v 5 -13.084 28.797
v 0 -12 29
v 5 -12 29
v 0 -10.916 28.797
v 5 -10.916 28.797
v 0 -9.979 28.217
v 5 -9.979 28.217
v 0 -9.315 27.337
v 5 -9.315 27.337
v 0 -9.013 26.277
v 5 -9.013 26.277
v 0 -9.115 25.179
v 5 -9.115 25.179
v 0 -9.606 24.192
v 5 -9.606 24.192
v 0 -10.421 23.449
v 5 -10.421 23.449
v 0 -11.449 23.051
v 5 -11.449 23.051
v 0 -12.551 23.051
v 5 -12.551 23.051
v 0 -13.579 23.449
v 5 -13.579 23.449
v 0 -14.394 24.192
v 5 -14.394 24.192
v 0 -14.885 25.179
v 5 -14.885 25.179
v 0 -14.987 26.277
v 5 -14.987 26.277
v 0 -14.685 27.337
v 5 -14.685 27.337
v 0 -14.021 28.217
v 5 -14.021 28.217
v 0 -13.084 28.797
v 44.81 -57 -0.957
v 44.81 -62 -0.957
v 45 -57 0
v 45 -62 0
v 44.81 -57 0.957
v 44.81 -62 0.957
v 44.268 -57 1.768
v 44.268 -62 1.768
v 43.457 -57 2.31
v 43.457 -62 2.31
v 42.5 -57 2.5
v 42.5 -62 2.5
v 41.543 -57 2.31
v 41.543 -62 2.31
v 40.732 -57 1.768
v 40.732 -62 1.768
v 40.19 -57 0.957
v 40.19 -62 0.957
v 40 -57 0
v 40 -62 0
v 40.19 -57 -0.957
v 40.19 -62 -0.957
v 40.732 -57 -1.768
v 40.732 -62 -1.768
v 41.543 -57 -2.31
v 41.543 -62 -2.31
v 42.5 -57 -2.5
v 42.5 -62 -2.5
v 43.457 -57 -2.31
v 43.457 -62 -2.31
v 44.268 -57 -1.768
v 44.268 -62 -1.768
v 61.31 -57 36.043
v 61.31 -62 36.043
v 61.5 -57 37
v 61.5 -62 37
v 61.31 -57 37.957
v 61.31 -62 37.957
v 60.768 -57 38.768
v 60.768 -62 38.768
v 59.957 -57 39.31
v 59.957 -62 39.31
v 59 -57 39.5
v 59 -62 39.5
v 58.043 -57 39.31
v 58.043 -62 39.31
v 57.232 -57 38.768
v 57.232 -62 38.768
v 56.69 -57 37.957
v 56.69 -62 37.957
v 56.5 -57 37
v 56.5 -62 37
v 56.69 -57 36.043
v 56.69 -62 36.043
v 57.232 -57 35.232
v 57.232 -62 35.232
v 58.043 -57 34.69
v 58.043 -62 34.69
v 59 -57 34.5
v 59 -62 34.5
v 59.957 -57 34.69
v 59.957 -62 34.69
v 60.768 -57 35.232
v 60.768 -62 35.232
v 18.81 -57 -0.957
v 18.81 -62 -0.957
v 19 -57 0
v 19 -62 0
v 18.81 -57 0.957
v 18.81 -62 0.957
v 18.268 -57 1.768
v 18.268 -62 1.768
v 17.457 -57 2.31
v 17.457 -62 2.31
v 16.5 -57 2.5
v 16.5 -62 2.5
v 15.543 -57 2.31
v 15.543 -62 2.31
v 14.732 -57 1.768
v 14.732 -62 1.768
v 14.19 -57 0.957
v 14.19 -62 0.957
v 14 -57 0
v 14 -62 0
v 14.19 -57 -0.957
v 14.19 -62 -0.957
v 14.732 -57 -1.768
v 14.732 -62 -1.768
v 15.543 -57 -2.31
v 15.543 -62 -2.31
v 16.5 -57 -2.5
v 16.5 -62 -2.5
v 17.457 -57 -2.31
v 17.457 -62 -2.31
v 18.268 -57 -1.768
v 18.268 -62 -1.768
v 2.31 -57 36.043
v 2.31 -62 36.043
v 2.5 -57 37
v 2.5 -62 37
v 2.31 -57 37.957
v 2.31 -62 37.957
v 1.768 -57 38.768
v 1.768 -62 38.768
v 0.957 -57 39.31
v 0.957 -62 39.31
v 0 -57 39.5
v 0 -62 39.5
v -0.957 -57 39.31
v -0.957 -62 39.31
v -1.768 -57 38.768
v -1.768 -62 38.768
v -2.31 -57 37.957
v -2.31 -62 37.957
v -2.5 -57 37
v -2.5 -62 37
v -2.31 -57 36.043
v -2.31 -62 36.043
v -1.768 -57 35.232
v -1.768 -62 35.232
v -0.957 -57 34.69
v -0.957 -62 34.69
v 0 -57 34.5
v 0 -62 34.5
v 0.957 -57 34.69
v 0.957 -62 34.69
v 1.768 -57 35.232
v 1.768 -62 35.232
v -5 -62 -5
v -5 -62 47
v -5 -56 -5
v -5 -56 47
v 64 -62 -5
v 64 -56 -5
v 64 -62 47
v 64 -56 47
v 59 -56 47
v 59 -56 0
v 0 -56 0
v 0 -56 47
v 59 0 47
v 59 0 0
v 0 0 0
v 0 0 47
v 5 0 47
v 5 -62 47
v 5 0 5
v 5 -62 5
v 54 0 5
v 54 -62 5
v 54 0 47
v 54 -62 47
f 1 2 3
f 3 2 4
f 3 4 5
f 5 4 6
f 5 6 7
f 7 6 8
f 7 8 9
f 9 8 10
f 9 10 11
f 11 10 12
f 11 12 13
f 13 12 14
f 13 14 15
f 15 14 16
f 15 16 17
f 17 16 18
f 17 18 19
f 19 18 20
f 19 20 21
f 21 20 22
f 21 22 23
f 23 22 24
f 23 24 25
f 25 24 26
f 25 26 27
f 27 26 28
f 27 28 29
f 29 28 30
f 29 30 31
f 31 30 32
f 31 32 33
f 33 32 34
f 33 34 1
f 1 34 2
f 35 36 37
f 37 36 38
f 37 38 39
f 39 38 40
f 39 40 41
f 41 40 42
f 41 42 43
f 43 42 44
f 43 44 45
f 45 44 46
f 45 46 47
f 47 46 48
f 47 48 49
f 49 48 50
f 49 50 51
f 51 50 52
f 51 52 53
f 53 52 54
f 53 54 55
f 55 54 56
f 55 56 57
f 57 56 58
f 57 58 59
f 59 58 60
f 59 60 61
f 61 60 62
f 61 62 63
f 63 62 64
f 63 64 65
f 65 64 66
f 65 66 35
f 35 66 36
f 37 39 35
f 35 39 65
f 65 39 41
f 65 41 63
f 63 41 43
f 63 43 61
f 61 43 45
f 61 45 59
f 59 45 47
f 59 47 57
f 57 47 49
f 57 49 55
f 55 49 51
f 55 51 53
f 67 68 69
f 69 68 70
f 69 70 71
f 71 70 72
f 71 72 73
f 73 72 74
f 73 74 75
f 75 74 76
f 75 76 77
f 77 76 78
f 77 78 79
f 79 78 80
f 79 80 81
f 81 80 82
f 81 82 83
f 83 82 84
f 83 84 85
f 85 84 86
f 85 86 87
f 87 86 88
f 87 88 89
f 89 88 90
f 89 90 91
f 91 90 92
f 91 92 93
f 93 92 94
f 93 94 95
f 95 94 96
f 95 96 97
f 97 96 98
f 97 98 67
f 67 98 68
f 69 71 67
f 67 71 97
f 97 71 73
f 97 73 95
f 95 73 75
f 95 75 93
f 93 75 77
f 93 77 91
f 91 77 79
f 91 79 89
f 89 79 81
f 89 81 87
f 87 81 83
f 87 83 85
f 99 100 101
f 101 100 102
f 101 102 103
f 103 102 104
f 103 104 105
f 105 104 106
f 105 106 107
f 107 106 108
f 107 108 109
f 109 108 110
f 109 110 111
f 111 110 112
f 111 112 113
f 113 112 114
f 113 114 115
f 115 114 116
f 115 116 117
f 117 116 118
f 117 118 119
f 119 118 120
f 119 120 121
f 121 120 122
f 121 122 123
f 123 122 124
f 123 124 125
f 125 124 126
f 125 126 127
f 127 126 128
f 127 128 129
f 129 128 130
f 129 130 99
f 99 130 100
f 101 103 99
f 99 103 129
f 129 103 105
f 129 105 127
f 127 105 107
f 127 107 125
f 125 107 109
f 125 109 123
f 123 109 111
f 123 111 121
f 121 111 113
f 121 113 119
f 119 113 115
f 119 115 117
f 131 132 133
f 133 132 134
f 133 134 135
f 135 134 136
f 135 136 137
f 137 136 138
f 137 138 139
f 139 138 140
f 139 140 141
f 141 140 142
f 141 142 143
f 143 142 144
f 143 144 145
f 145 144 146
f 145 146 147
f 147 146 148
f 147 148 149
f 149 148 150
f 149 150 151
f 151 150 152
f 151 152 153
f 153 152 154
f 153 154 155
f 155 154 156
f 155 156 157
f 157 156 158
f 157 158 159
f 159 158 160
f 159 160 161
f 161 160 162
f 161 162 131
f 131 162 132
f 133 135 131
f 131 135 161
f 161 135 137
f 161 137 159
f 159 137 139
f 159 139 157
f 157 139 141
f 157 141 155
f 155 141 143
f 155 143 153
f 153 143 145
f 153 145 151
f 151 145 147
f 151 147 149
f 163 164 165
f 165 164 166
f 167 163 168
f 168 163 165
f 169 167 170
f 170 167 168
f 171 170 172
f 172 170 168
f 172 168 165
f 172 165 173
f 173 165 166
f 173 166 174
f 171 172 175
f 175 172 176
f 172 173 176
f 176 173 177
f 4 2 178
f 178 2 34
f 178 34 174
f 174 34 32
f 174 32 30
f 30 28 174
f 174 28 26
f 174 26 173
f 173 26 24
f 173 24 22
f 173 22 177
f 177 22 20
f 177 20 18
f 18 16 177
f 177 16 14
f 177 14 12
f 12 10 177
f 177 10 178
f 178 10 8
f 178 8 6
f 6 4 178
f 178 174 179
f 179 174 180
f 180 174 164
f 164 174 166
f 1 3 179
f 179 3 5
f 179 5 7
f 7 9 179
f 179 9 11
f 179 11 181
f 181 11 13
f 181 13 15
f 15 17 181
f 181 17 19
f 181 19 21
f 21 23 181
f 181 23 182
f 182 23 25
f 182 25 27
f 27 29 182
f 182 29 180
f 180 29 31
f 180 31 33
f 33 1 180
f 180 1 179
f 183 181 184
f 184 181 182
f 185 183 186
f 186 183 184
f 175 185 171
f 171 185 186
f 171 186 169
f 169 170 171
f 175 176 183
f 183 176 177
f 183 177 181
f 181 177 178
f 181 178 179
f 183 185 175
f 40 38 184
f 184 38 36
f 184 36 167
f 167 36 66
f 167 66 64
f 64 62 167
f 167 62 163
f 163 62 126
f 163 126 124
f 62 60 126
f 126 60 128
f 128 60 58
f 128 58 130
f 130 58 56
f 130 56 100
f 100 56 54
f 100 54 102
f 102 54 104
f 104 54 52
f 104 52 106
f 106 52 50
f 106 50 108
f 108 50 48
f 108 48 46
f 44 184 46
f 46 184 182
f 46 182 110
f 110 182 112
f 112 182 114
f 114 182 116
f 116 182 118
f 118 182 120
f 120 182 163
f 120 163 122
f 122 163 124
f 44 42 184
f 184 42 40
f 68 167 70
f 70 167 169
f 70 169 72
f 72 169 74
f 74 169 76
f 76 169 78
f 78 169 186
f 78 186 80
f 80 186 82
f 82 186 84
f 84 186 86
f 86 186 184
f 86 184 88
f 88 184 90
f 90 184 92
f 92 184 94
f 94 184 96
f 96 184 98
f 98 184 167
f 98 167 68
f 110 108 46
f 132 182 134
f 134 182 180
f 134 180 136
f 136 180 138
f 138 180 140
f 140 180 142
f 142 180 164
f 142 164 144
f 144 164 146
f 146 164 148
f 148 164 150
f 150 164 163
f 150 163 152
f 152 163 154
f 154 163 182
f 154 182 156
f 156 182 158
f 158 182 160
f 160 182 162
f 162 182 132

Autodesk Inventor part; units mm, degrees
ref_plane "YZ Plane" through (0, 0, 0) normal (1, 0, 0) x (0, 1, 0)
ref_plane "XZ Plane" through (0, 0, 0) normal (0, 1, 0) x (-1, 0, 0)
ref_plane "XY Plane" through (0, 0, 0) normal (0, 0, 1) x (1, 0, 0)
sketch "Sketch1" plane through (0, 0, 0) normal (0, 1, 0) x (-1, 0, 0)
  line L0 (0, 0) -> (-59, 0)
  line L1 (-59, 0) -> (-59, 5)
  line L2 (-59, 5) -> (0, 5)
  line L3 (0, 5) -> (0, 0)
  line L4 (0, 5) -> (-5, 5)
  line L5 (-5, 5) -> (-5, 47)
  line L6 (-5, 47) -> (0, 47)
  line L7 (0, 47) -> (0, 5)
  line L8 (-59, 5) -> (-54, 5)
  line L9 (-54, 5) -> (-54, 47)
  line L10 (-54, 47) -> (-59, 47)
  line L11 (-59, 47) -> (-59, 5)
  point P0 (-54, 5)
  dimension "d0" = 59
  dimension "d1" = 5
  dimension "d2" = 5
  dimension "d3" = 42
  dimension "d4" = 5
  dimension "d5" = 42
extrude "Extrusion1" add sketch "Sketch1" against normal blind 62
sketch "Sketch7" plane through (0, -62, 0) normal (0, -1, 0) x (1, 0, 0)
  line L0 (0, 47) -> (0, 0) projected
  line L1 (0, 47) -> (-5, 47)
  line L2 (-5, 47) -> (-5, -5)
  line L3 (-5, -5) -> (0, -5)
  line L4 (0, -5) -> (0, 47)
  line L5 (59, 47) -> (54, 47) projected
  line L6 (59, 47) -> (64, 47)
  line L7 (64, 47) -> (64, -5)
  line L8 (64, -5) -> (59, -5)
  line L9 (59, -5) -> (59, 47)
  line L10 (0, 0) -> (59, 0) projected
  line L11 (59, -5) -> (0, -5)
  line L12 (0, -5) -> (0, 0)
  line L13 (0, 0) -> (59, 0)
  line L14 (59, 0) -> (59, -5)
  dimension "d34" = 5
  dimension "d35" = 52
  dimension "d36" = 5
  dimension "d37" = 52
extrude "Extrusion7" add sketch "Sketch7" against normal blind 6
sketch "Sketch8" plane through (0, -62, 0) normal (0, -1, 0) x (1, 0, 0)
  line L0 (0, 0) -> (0, 47) projected
  line L1 (5, 47) -> (-5, 47) projected
  circle A0 centre (0, 37) radius 2.5
  line L2 (59, 47) -> (59, 0) projected
  line L3 (64, 47) -> (54, 47) projected
  circle A1 centre (59, 37) radius 2.5
  line L4 (59, 0) -> (0, 0) projected
  line L5 (-5, 47) -> (-5, -5) projected
  line L6 (64, -5) -> (64, 47) projected
  circle A2 centre (16.5, 0) radius 2.5
  circle A3 centre (42.5, 0) radius 2.5
  point P0 (29.5, 0)
  dimension "d40" = 10
  dimension "d41" = 5
  dimension "d42" = 10
  dimension "d43" = 5
  dimension "d44" = 34.5
  dimension "d47" = 5
  dimension "d48" = 5
  dimension "d56" = 13
  dimension "d57" = 13
extrude "Extrusion8" cut sketch "Sketch8" against normal blind 5
sketch "Sketch9" plane through (0, 0, 0) normal (-1, 0, 0) x (0, 0, 1)
  point P0 (0, 0)
sketch "Sketch10" plane through (0, 0, 0) normal (-1, 0, 0) x (0, 0, 1)
  line L0 (47, 0) -> (47, -56) projected
  line L1 (47, -62) -> (-5, -62) projected
  circle A0 centre (26, -12) radius 3
  point P0 (0, 0)
  dimension "d51" = 21
  dimension "d52" = 50
  dimension "d53" = 6
extrude "Extrusion9" cut sketch "Sketch10" against normal blind 5
equation "\"d4\" = d2"
equation "\"d5\" = d3"
equation "\"d42\" = d40"
equation "\"d43\" = d41"
equation "\"d47\" = d41"
equation "\"d48\" = d47"
equation "\"d57\" = d56"
properties part number "top cam mount v03"
